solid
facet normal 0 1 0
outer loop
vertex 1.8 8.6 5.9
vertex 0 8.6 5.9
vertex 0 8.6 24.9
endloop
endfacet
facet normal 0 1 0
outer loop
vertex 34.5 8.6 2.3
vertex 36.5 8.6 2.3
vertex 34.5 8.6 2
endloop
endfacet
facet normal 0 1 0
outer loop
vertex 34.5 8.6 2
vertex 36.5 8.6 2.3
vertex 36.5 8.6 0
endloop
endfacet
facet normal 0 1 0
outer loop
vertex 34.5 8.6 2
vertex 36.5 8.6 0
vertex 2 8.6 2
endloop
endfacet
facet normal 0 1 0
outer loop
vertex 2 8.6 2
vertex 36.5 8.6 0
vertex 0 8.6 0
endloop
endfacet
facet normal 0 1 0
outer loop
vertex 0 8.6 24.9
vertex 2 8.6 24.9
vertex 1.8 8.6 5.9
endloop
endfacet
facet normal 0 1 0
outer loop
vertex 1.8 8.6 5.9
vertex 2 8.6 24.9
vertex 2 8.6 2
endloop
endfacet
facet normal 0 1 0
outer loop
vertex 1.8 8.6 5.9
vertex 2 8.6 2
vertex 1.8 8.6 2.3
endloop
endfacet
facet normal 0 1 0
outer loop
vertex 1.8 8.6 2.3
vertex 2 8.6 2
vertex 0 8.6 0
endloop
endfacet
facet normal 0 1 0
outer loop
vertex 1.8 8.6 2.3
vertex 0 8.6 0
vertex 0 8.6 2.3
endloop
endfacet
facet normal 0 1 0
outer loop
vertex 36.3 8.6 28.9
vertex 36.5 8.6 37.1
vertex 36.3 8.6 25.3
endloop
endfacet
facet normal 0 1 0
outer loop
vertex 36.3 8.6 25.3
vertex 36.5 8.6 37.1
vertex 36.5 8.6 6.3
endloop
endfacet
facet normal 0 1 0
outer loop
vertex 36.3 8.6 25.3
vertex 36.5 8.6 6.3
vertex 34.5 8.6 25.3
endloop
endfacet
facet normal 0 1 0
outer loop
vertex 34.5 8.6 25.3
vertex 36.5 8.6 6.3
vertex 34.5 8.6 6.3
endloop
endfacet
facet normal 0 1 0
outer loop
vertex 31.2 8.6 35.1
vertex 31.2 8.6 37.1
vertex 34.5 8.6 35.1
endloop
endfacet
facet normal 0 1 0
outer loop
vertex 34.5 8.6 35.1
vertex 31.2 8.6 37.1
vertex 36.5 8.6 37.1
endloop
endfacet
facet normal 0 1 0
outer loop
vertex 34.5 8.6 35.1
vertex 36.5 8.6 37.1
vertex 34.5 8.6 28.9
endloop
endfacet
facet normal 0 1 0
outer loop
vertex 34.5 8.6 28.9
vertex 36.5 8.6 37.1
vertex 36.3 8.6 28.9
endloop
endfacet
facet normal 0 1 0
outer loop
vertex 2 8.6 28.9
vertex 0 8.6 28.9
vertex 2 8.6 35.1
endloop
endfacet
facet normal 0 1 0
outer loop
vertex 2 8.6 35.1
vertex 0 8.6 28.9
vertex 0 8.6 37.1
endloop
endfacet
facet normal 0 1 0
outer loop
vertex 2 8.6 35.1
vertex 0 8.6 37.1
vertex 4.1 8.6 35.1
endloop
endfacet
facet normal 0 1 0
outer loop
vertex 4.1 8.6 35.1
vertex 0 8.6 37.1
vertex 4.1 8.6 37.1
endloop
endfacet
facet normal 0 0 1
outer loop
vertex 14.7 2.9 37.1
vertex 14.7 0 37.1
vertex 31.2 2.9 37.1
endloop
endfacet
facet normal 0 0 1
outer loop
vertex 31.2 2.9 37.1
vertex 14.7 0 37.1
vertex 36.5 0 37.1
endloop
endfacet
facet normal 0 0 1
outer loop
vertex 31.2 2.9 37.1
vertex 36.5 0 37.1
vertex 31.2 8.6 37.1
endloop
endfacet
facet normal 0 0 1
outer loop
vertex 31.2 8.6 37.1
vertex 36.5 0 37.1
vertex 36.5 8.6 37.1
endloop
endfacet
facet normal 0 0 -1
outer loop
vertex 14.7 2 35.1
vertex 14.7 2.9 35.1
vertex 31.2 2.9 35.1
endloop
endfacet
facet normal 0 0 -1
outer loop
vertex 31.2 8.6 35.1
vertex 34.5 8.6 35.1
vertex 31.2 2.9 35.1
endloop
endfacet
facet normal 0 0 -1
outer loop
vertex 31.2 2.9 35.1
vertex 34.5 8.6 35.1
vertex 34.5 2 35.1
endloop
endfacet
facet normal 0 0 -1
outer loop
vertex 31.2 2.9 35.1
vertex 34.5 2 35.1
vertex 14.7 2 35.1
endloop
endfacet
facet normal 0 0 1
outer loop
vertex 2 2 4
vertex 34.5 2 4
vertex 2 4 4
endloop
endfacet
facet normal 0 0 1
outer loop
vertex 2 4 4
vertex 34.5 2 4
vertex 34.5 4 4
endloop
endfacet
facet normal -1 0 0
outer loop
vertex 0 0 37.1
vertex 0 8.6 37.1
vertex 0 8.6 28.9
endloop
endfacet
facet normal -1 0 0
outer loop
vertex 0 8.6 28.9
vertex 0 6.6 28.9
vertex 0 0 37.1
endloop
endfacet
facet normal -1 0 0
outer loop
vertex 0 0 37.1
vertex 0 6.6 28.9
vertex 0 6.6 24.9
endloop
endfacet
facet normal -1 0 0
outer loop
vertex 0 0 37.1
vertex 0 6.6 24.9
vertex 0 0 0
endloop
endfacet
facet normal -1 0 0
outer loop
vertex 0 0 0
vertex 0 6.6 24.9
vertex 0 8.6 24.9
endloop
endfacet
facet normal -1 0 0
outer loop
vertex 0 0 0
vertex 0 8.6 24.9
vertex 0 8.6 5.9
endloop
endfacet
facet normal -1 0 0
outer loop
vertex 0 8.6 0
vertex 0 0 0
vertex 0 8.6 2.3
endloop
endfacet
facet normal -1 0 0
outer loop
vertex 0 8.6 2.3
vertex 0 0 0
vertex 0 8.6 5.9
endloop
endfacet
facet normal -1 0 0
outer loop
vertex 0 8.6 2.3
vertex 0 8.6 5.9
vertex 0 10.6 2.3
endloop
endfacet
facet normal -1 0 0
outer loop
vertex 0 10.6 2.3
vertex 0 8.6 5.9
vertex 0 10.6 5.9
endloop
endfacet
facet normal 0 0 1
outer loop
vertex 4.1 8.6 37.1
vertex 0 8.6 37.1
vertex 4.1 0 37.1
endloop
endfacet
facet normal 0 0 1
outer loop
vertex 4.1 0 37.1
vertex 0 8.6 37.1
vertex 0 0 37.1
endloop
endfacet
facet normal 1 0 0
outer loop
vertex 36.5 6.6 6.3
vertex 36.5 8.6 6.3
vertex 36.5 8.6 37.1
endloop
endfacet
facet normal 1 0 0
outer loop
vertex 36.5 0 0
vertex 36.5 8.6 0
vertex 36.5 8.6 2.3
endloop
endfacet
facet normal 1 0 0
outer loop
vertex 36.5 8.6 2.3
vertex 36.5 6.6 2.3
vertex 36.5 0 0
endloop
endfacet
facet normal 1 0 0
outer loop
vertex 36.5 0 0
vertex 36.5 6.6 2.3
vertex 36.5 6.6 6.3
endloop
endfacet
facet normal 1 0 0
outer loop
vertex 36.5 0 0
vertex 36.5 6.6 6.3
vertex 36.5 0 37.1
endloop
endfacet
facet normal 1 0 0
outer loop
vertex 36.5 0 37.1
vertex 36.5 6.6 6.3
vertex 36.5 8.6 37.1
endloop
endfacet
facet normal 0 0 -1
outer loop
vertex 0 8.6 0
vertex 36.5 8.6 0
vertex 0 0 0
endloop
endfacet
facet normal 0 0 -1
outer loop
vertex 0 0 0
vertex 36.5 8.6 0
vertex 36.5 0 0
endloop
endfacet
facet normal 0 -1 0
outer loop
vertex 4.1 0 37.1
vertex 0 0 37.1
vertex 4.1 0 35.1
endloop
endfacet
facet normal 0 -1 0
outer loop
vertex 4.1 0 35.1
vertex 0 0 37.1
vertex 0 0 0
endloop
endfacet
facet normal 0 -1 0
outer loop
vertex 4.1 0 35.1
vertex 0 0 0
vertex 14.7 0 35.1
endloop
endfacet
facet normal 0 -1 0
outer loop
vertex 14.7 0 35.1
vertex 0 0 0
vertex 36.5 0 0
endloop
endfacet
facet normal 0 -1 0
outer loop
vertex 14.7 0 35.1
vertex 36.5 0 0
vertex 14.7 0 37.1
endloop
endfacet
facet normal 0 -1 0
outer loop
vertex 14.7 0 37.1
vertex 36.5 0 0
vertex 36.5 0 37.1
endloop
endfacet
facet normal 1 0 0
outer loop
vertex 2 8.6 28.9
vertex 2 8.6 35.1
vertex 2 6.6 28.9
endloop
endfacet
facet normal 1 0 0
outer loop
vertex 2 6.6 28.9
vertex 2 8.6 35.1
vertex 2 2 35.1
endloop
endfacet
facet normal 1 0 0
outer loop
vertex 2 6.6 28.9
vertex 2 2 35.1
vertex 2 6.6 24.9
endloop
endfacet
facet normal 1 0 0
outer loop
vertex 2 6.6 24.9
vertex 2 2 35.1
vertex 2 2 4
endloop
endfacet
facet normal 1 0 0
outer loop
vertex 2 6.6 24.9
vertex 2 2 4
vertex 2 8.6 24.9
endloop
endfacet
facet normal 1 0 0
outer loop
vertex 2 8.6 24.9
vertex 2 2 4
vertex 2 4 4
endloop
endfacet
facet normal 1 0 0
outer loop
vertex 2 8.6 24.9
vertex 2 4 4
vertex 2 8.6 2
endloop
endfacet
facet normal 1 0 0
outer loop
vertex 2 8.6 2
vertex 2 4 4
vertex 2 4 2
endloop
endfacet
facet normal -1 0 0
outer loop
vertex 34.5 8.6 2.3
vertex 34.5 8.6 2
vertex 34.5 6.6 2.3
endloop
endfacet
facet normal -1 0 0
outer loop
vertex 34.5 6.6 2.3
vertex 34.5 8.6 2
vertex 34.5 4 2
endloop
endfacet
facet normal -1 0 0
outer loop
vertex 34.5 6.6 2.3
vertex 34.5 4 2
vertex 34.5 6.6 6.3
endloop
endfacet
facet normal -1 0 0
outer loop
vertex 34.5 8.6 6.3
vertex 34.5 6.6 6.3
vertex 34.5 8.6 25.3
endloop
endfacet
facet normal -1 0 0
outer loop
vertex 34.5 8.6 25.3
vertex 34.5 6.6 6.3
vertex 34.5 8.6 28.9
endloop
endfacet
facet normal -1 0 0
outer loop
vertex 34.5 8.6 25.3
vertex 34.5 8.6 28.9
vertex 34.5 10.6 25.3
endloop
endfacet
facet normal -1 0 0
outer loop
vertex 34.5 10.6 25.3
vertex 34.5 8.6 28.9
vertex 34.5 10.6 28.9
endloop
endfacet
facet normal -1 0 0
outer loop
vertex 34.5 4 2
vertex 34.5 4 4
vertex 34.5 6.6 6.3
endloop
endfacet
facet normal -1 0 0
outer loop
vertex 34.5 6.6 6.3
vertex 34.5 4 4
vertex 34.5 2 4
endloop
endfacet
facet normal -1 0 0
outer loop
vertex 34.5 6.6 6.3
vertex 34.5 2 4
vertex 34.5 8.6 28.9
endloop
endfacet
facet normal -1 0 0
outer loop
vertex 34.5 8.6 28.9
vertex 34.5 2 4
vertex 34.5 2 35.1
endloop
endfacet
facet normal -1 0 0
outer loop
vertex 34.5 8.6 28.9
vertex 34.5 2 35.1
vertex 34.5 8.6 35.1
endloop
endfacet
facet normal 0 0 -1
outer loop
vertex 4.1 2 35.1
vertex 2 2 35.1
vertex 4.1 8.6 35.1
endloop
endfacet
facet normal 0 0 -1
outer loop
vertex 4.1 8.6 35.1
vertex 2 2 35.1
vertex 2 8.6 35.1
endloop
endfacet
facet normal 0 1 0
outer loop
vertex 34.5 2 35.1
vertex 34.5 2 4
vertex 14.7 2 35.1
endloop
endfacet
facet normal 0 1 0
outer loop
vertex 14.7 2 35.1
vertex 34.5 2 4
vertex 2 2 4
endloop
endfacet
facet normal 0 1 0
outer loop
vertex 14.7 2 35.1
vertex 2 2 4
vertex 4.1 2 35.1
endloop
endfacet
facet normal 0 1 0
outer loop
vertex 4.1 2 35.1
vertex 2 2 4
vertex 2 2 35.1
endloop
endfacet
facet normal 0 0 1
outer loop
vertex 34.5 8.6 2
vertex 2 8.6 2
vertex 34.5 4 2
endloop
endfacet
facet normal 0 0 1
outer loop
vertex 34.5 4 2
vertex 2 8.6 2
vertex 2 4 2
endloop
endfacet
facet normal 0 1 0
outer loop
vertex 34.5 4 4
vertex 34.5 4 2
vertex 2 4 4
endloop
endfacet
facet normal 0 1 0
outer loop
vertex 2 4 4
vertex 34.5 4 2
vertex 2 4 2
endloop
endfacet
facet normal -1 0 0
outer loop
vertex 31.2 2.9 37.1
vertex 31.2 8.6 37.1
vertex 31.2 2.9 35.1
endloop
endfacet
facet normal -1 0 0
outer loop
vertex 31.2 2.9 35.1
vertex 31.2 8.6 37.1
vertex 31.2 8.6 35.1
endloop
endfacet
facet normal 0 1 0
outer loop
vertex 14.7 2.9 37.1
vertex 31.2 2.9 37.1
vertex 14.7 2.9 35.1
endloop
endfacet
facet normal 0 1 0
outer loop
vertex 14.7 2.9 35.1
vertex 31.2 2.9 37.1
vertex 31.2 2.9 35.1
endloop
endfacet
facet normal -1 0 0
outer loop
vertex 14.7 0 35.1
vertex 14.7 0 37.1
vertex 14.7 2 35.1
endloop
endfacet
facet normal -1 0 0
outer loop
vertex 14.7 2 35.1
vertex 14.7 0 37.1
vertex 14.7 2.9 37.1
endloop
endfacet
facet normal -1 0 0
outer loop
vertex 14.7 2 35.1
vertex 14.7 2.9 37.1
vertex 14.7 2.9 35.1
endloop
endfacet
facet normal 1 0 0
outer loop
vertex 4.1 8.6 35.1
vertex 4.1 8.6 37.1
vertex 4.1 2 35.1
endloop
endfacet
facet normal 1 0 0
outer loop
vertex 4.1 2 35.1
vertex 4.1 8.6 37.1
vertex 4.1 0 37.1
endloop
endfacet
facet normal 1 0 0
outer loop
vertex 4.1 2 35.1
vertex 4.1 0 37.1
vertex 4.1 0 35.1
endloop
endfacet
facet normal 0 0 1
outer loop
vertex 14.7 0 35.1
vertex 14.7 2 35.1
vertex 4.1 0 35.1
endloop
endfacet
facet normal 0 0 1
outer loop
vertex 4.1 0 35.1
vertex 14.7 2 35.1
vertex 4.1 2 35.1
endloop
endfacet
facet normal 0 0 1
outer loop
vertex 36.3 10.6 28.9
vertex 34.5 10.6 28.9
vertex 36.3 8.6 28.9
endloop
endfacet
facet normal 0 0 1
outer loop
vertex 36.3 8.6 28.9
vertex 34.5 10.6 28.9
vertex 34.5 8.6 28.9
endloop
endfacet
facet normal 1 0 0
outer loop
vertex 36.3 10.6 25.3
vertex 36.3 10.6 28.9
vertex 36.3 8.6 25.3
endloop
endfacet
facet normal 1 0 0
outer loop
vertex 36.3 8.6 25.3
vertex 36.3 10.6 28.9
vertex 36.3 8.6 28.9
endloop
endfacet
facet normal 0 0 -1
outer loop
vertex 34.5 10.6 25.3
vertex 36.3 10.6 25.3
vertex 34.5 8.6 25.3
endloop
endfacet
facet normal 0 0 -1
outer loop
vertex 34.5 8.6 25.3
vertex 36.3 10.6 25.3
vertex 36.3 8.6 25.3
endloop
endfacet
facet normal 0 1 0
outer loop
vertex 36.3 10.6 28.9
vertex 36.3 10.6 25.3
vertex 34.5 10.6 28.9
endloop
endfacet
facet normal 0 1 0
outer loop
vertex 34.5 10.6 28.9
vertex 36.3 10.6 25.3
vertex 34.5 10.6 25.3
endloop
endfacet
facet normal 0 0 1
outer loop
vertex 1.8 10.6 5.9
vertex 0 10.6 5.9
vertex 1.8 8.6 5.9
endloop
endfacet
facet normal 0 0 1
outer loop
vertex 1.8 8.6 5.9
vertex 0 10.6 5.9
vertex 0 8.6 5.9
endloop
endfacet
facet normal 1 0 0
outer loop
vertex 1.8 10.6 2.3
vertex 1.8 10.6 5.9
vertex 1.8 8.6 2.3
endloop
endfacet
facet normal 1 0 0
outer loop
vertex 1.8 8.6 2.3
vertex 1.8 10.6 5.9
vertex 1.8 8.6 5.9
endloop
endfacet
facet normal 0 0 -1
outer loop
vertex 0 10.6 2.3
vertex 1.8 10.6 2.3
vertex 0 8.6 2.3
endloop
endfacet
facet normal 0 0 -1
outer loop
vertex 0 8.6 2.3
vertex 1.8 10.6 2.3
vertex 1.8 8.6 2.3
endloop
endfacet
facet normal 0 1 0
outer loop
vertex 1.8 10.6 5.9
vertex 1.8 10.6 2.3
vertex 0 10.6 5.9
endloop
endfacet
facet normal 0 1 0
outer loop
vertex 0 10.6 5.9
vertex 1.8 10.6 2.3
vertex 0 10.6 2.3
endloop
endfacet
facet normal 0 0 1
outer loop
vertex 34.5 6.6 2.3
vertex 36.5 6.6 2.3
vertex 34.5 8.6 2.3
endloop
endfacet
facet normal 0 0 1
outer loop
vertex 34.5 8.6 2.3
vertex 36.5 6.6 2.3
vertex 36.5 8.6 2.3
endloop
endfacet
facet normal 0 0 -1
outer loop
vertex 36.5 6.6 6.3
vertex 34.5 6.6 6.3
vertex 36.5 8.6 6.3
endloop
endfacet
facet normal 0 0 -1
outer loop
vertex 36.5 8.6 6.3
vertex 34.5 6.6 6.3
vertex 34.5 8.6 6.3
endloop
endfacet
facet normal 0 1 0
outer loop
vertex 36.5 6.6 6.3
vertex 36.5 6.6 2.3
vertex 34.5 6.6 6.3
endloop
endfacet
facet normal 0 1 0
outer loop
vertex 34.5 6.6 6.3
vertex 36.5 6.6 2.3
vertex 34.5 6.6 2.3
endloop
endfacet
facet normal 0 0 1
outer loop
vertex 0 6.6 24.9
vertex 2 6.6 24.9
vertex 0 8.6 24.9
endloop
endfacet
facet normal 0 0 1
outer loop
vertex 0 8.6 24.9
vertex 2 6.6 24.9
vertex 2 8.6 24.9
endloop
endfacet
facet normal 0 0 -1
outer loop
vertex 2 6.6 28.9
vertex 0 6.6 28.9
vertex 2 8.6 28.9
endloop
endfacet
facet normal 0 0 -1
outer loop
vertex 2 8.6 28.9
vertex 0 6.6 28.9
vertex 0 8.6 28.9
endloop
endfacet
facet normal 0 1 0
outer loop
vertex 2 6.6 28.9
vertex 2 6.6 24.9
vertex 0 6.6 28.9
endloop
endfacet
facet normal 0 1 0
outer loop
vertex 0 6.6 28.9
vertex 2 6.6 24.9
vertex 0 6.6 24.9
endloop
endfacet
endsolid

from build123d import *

# Parameters (mm, degrees)
SKETCH3_W            = 36.5
SKETCH3_H            = 37.1
SHELL_DEPTH          = 8.6
SKETCH4_W            = 32.5
SKETCH4_H            = 31.1
MAIN_CAVITY_DEPTH    = 6.6
SKETCH5_W            = 32.5
SKETCH5_H            = 2
SUPPORT_SHELF_DEPTH  = 4.6
TERMINAL_INPUT_DEPTH = 2
SKETCH7_W            = 1.8
SKETCH7_H            = 3.6
MALE_TABS_DEPTH      = 2
SKETCH8_W            = 2
SKETCH8_H            = 4
FEMALE_TABS_DEPTH    = 2


with BuildPart() as part:
    # Sketch3 → Shell (new body)
    with BuildSketch(Plane(origin=(0, 0, 0), x_dir=(1, 0, 0), z_dir=(0, 1, 0))):
        with Locations((18.25, -18.55)):
            Rectangle(SKETCH3_W, SKETCH3_H)
    extrude(amount=SHELL_DEPTH)

    # Sketch4 → Main Cavity (cut)
    with BuildSketch(Plane(origin=(0, 8.6, 0), x_dir=(1, 0, 0), z_dir=(0, 1, 0))):
        with Locations((18.25, -19.55)):
            Rectangle(SKETCH4_W, SKETCH4_H)
    extrude(amount=-MAIN_CAVITY_DEPTH, mode=Mode.SUBTRACT)

    # Sketch5 → Support Shelf (cut)
    with BuildSketch(Plane(origin=(0, 8.6, 0), x_dir=(1, 0, 0), z_dir=(0, 1, 0))):
        with Locations((18.25, -3)):
            Rectangle(SKETCH5_W, SKETCH5_H)
    extrude(amount=-SUPPORT_SHELF_DEPTH, mode=Mode.SUBTRACT)

    # Sketch6 → Terminal Input (cut)
    with BuildSketch(Plane.XY.offset(37.1)):
        Polygon((31.2, 2.9), (31.2, 8.6), (4.1, 8.6), (4.1, 0), (14.7, 0), (14.7, 2.9), align=None)
    extrude(amount=-TERMINAL_INPUT_DEPTH, mode=Mode.SUBTRACT)

    # Sketch7 → Male Tabs (add)
    with BuildSketch(Plane(origin=(0, 8.6, 0), x_dir=(1, 0, 0), z_dir=(0, 1, 0))):
        with Locations((35.4, -27.1)):
            Rectangle(SKETCH7_W, SKETCH7_H)
        with Locations((0.9, -4.1)):
            Rectangle(SKETCH7_W, SKETCH7_H)
    extrude(amount=MALE_TABS_DEPTH)

    # Sketch8 → Female Tabs (cut)
    with BuildSketch(Plane(origin=(0, 8.6, 0), x_dir=(1, 0, 0), z_dir=(0, 1, 0))):
        with Locations((35.5, -4.3)):
            Rectangle(SKETCH8_W, SKETCH8_H)
        with Locations((1, -26.9)):
            Rectangle(SKETCH8_W, SKETCH8_H)
    extrude(amount=-FEMALE_TABS_DEPTH, mode=Mode.SUBTRACT)


solid = part.part
